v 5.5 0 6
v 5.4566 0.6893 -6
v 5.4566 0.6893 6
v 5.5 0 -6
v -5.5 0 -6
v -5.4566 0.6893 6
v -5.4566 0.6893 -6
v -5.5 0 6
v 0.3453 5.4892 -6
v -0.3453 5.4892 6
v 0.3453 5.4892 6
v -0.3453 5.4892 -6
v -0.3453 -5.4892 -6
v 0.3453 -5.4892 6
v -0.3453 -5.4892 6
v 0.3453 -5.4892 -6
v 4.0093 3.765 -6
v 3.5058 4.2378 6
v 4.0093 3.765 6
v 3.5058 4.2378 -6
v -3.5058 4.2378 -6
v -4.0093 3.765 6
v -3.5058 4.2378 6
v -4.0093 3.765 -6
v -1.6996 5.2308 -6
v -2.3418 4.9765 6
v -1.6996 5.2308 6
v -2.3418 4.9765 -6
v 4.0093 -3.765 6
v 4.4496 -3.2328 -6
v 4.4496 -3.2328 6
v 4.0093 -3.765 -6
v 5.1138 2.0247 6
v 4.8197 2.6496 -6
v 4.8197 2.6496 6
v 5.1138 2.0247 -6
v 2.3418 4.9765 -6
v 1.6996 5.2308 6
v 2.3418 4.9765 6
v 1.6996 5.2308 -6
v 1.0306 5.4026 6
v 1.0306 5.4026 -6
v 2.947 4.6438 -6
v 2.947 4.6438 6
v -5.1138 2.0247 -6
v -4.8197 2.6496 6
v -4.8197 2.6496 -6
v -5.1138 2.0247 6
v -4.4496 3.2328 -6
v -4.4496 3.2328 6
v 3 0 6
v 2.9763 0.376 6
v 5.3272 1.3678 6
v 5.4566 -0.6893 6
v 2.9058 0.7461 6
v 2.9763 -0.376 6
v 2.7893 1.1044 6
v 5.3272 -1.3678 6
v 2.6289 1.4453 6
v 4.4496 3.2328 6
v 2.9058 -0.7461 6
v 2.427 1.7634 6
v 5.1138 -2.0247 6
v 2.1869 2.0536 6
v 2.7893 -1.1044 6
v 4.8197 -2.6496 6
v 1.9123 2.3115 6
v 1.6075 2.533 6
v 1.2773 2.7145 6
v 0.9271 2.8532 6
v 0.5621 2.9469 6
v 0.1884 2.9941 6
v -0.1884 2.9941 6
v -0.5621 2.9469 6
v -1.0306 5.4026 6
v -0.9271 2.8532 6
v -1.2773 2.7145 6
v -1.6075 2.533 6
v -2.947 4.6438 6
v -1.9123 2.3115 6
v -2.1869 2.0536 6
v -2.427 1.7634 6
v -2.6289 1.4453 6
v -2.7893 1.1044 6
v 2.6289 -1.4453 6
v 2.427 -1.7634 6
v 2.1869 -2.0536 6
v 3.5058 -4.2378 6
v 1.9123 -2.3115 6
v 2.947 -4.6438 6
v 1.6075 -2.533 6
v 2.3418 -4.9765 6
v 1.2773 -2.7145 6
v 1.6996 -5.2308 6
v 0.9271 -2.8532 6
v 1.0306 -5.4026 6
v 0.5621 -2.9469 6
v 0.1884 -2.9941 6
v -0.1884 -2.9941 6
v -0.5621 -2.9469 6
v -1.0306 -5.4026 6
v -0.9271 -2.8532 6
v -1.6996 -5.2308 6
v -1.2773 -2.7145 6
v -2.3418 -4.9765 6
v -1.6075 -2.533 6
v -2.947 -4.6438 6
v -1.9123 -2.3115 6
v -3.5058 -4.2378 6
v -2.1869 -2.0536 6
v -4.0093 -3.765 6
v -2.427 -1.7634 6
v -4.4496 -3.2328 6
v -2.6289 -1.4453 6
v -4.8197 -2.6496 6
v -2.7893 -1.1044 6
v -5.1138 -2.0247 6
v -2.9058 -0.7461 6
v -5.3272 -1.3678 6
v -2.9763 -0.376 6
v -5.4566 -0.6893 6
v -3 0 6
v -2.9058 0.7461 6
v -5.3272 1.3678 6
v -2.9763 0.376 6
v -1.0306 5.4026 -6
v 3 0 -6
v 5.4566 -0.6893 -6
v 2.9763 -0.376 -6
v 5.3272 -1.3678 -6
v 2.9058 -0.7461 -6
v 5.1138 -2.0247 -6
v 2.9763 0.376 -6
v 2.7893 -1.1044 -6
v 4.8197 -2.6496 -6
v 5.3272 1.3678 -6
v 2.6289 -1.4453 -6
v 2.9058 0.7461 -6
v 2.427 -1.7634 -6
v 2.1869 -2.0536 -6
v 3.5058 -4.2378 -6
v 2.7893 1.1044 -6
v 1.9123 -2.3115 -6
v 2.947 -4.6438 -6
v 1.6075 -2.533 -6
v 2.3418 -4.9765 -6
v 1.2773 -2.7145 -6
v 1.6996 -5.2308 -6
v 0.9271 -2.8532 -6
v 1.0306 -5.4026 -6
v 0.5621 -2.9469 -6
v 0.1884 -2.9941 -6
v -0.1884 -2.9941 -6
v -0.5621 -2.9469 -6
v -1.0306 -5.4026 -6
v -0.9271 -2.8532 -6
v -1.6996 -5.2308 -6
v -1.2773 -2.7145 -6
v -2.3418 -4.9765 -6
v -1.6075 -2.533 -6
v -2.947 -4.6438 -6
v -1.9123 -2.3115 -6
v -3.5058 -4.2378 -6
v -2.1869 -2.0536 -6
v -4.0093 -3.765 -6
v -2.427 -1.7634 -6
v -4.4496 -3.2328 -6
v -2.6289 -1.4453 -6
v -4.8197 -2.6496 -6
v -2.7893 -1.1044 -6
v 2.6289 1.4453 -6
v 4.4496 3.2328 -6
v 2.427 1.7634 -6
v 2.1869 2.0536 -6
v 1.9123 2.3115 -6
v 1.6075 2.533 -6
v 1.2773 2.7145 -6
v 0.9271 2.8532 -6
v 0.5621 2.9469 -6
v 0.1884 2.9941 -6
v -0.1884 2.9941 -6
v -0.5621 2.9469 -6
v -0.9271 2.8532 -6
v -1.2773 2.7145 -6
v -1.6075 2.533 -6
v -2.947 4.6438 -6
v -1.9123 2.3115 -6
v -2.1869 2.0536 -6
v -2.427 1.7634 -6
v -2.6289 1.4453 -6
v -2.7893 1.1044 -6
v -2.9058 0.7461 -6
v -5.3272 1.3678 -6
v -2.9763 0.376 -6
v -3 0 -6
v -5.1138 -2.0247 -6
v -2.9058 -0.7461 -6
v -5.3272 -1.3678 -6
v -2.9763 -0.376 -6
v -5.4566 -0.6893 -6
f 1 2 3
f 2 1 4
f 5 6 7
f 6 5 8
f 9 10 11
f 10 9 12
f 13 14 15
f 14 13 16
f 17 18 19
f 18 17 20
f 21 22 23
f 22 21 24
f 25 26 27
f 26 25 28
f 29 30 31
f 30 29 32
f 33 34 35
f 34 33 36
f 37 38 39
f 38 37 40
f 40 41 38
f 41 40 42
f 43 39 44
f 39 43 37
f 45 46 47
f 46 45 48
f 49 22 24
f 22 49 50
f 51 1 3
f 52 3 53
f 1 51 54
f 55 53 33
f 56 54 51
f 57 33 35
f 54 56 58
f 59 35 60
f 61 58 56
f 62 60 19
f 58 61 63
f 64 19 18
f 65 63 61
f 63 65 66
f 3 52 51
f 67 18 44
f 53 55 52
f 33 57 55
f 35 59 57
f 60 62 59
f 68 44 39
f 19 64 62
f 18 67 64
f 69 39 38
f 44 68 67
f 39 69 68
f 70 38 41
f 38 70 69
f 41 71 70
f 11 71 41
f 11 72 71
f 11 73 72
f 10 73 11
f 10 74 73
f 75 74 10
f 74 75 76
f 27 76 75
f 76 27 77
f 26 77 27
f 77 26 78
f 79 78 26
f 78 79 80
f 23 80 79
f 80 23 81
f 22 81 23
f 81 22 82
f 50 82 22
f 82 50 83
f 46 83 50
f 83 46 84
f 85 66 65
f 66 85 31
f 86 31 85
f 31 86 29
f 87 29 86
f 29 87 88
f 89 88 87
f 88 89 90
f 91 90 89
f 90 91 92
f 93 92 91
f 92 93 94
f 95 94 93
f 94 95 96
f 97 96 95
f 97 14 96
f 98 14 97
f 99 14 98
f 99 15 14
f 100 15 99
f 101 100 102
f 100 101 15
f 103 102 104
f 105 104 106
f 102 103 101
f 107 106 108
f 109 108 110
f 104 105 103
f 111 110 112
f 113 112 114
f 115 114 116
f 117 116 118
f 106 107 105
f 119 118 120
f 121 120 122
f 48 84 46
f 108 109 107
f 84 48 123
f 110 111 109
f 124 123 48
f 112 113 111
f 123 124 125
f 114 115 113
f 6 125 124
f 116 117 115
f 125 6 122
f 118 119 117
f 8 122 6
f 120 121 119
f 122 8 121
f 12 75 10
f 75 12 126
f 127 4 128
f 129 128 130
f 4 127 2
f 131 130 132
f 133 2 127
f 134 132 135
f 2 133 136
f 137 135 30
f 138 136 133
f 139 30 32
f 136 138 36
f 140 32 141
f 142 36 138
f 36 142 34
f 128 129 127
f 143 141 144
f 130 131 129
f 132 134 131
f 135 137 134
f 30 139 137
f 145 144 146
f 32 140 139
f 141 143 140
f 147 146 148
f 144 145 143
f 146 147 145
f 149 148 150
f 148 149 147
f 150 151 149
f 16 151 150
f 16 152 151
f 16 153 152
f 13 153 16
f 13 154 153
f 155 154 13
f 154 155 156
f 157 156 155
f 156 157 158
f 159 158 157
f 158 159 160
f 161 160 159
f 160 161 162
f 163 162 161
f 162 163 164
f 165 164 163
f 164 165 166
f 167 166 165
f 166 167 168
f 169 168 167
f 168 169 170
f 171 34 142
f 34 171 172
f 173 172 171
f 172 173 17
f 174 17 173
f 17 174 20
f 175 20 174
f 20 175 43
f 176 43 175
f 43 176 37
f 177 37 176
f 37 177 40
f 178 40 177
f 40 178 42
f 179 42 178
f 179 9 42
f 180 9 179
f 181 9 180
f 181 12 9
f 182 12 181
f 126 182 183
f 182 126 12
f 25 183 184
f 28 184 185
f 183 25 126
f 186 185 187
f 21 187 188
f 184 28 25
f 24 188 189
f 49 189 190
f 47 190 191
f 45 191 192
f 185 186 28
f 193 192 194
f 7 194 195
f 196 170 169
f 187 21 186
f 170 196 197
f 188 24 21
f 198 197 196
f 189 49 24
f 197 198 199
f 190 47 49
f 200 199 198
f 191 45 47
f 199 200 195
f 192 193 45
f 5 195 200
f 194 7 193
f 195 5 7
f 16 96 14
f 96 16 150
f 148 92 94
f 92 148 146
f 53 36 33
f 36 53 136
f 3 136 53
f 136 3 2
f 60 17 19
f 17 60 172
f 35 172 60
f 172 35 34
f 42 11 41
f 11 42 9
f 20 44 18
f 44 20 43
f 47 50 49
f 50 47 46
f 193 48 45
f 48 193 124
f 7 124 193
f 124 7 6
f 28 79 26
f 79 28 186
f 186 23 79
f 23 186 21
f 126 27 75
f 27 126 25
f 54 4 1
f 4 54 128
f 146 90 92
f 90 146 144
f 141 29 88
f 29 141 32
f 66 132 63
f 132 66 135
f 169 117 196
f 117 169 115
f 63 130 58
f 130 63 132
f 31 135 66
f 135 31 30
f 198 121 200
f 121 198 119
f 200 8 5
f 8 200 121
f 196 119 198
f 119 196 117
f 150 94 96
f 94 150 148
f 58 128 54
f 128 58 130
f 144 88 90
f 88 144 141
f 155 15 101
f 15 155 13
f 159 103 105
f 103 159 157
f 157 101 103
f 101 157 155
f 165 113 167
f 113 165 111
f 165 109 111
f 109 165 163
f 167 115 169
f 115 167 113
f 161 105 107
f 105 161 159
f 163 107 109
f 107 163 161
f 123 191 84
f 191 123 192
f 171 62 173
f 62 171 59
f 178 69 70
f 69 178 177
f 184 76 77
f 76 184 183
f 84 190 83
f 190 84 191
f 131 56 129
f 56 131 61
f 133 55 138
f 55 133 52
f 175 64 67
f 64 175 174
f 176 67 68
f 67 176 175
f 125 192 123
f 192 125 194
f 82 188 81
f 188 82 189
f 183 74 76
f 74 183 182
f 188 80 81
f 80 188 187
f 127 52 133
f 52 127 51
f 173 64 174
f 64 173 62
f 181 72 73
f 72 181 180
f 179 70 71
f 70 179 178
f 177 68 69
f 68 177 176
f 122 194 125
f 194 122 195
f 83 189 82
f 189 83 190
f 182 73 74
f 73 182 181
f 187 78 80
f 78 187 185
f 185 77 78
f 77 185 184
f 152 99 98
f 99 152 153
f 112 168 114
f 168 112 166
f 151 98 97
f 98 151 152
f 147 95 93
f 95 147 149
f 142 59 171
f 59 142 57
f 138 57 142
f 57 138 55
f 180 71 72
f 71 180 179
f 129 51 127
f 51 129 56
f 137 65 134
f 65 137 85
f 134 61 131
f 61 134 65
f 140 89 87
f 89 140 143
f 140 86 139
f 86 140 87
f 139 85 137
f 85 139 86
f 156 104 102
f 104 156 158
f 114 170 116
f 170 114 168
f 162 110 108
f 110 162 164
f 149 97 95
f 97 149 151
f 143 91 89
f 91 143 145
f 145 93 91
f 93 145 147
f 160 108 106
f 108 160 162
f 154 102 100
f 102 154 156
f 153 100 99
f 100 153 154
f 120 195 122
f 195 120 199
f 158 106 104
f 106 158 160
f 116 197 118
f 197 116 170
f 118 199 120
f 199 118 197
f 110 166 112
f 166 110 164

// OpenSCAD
$fn = 50;


difference() {
	union() {
		translate(v = [0, 0, -6.0000000000]) {
			cylinder(h = 12, r = 5.5000000000);
		}
	}
	union() {
		translate(v = [0, 0, -100.0000000000]) {
			cylinder(h = 200, r = 3.0000000000);
		}
	}
}
